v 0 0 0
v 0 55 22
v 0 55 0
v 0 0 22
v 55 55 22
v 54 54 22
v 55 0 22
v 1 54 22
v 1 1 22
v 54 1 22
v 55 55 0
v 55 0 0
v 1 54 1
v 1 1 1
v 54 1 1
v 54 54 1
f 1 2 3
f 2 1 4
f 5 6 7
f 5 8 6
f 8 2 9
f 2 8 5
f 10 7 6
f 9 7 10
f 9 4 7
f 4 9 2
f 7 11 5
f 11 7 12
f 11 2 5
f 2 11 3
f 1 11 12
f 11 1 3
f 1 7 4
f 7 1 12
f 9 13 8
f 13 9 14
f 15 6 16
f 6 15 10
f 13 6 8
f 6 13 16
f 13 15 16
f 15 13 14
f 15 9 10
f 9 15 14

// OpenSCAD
module box(length, width, thickness){
    difference(){
        cube([length, width, thickness]);
        translate([1, 1, 1]){
            cube([length - 2, width - 2, thickness]);
        }
    }
}

module lid(length, width, thickness){
    difference(){
    box(length, width, thickness);
        translate([12,3,-.01]){
            mirror([1,0,0]){
                rotate([0,0,90]){
                    /*linear_extrude(height=.4){
                        text("S S S", size=15);
                    }*/
                }
            }
        }
    }
}


box(55, 55, 22);

translate([2.5,0,10]){
    rotate([90,0,0]){
        linear_extrude(height=.6){
            text("");
        }
    }
}

